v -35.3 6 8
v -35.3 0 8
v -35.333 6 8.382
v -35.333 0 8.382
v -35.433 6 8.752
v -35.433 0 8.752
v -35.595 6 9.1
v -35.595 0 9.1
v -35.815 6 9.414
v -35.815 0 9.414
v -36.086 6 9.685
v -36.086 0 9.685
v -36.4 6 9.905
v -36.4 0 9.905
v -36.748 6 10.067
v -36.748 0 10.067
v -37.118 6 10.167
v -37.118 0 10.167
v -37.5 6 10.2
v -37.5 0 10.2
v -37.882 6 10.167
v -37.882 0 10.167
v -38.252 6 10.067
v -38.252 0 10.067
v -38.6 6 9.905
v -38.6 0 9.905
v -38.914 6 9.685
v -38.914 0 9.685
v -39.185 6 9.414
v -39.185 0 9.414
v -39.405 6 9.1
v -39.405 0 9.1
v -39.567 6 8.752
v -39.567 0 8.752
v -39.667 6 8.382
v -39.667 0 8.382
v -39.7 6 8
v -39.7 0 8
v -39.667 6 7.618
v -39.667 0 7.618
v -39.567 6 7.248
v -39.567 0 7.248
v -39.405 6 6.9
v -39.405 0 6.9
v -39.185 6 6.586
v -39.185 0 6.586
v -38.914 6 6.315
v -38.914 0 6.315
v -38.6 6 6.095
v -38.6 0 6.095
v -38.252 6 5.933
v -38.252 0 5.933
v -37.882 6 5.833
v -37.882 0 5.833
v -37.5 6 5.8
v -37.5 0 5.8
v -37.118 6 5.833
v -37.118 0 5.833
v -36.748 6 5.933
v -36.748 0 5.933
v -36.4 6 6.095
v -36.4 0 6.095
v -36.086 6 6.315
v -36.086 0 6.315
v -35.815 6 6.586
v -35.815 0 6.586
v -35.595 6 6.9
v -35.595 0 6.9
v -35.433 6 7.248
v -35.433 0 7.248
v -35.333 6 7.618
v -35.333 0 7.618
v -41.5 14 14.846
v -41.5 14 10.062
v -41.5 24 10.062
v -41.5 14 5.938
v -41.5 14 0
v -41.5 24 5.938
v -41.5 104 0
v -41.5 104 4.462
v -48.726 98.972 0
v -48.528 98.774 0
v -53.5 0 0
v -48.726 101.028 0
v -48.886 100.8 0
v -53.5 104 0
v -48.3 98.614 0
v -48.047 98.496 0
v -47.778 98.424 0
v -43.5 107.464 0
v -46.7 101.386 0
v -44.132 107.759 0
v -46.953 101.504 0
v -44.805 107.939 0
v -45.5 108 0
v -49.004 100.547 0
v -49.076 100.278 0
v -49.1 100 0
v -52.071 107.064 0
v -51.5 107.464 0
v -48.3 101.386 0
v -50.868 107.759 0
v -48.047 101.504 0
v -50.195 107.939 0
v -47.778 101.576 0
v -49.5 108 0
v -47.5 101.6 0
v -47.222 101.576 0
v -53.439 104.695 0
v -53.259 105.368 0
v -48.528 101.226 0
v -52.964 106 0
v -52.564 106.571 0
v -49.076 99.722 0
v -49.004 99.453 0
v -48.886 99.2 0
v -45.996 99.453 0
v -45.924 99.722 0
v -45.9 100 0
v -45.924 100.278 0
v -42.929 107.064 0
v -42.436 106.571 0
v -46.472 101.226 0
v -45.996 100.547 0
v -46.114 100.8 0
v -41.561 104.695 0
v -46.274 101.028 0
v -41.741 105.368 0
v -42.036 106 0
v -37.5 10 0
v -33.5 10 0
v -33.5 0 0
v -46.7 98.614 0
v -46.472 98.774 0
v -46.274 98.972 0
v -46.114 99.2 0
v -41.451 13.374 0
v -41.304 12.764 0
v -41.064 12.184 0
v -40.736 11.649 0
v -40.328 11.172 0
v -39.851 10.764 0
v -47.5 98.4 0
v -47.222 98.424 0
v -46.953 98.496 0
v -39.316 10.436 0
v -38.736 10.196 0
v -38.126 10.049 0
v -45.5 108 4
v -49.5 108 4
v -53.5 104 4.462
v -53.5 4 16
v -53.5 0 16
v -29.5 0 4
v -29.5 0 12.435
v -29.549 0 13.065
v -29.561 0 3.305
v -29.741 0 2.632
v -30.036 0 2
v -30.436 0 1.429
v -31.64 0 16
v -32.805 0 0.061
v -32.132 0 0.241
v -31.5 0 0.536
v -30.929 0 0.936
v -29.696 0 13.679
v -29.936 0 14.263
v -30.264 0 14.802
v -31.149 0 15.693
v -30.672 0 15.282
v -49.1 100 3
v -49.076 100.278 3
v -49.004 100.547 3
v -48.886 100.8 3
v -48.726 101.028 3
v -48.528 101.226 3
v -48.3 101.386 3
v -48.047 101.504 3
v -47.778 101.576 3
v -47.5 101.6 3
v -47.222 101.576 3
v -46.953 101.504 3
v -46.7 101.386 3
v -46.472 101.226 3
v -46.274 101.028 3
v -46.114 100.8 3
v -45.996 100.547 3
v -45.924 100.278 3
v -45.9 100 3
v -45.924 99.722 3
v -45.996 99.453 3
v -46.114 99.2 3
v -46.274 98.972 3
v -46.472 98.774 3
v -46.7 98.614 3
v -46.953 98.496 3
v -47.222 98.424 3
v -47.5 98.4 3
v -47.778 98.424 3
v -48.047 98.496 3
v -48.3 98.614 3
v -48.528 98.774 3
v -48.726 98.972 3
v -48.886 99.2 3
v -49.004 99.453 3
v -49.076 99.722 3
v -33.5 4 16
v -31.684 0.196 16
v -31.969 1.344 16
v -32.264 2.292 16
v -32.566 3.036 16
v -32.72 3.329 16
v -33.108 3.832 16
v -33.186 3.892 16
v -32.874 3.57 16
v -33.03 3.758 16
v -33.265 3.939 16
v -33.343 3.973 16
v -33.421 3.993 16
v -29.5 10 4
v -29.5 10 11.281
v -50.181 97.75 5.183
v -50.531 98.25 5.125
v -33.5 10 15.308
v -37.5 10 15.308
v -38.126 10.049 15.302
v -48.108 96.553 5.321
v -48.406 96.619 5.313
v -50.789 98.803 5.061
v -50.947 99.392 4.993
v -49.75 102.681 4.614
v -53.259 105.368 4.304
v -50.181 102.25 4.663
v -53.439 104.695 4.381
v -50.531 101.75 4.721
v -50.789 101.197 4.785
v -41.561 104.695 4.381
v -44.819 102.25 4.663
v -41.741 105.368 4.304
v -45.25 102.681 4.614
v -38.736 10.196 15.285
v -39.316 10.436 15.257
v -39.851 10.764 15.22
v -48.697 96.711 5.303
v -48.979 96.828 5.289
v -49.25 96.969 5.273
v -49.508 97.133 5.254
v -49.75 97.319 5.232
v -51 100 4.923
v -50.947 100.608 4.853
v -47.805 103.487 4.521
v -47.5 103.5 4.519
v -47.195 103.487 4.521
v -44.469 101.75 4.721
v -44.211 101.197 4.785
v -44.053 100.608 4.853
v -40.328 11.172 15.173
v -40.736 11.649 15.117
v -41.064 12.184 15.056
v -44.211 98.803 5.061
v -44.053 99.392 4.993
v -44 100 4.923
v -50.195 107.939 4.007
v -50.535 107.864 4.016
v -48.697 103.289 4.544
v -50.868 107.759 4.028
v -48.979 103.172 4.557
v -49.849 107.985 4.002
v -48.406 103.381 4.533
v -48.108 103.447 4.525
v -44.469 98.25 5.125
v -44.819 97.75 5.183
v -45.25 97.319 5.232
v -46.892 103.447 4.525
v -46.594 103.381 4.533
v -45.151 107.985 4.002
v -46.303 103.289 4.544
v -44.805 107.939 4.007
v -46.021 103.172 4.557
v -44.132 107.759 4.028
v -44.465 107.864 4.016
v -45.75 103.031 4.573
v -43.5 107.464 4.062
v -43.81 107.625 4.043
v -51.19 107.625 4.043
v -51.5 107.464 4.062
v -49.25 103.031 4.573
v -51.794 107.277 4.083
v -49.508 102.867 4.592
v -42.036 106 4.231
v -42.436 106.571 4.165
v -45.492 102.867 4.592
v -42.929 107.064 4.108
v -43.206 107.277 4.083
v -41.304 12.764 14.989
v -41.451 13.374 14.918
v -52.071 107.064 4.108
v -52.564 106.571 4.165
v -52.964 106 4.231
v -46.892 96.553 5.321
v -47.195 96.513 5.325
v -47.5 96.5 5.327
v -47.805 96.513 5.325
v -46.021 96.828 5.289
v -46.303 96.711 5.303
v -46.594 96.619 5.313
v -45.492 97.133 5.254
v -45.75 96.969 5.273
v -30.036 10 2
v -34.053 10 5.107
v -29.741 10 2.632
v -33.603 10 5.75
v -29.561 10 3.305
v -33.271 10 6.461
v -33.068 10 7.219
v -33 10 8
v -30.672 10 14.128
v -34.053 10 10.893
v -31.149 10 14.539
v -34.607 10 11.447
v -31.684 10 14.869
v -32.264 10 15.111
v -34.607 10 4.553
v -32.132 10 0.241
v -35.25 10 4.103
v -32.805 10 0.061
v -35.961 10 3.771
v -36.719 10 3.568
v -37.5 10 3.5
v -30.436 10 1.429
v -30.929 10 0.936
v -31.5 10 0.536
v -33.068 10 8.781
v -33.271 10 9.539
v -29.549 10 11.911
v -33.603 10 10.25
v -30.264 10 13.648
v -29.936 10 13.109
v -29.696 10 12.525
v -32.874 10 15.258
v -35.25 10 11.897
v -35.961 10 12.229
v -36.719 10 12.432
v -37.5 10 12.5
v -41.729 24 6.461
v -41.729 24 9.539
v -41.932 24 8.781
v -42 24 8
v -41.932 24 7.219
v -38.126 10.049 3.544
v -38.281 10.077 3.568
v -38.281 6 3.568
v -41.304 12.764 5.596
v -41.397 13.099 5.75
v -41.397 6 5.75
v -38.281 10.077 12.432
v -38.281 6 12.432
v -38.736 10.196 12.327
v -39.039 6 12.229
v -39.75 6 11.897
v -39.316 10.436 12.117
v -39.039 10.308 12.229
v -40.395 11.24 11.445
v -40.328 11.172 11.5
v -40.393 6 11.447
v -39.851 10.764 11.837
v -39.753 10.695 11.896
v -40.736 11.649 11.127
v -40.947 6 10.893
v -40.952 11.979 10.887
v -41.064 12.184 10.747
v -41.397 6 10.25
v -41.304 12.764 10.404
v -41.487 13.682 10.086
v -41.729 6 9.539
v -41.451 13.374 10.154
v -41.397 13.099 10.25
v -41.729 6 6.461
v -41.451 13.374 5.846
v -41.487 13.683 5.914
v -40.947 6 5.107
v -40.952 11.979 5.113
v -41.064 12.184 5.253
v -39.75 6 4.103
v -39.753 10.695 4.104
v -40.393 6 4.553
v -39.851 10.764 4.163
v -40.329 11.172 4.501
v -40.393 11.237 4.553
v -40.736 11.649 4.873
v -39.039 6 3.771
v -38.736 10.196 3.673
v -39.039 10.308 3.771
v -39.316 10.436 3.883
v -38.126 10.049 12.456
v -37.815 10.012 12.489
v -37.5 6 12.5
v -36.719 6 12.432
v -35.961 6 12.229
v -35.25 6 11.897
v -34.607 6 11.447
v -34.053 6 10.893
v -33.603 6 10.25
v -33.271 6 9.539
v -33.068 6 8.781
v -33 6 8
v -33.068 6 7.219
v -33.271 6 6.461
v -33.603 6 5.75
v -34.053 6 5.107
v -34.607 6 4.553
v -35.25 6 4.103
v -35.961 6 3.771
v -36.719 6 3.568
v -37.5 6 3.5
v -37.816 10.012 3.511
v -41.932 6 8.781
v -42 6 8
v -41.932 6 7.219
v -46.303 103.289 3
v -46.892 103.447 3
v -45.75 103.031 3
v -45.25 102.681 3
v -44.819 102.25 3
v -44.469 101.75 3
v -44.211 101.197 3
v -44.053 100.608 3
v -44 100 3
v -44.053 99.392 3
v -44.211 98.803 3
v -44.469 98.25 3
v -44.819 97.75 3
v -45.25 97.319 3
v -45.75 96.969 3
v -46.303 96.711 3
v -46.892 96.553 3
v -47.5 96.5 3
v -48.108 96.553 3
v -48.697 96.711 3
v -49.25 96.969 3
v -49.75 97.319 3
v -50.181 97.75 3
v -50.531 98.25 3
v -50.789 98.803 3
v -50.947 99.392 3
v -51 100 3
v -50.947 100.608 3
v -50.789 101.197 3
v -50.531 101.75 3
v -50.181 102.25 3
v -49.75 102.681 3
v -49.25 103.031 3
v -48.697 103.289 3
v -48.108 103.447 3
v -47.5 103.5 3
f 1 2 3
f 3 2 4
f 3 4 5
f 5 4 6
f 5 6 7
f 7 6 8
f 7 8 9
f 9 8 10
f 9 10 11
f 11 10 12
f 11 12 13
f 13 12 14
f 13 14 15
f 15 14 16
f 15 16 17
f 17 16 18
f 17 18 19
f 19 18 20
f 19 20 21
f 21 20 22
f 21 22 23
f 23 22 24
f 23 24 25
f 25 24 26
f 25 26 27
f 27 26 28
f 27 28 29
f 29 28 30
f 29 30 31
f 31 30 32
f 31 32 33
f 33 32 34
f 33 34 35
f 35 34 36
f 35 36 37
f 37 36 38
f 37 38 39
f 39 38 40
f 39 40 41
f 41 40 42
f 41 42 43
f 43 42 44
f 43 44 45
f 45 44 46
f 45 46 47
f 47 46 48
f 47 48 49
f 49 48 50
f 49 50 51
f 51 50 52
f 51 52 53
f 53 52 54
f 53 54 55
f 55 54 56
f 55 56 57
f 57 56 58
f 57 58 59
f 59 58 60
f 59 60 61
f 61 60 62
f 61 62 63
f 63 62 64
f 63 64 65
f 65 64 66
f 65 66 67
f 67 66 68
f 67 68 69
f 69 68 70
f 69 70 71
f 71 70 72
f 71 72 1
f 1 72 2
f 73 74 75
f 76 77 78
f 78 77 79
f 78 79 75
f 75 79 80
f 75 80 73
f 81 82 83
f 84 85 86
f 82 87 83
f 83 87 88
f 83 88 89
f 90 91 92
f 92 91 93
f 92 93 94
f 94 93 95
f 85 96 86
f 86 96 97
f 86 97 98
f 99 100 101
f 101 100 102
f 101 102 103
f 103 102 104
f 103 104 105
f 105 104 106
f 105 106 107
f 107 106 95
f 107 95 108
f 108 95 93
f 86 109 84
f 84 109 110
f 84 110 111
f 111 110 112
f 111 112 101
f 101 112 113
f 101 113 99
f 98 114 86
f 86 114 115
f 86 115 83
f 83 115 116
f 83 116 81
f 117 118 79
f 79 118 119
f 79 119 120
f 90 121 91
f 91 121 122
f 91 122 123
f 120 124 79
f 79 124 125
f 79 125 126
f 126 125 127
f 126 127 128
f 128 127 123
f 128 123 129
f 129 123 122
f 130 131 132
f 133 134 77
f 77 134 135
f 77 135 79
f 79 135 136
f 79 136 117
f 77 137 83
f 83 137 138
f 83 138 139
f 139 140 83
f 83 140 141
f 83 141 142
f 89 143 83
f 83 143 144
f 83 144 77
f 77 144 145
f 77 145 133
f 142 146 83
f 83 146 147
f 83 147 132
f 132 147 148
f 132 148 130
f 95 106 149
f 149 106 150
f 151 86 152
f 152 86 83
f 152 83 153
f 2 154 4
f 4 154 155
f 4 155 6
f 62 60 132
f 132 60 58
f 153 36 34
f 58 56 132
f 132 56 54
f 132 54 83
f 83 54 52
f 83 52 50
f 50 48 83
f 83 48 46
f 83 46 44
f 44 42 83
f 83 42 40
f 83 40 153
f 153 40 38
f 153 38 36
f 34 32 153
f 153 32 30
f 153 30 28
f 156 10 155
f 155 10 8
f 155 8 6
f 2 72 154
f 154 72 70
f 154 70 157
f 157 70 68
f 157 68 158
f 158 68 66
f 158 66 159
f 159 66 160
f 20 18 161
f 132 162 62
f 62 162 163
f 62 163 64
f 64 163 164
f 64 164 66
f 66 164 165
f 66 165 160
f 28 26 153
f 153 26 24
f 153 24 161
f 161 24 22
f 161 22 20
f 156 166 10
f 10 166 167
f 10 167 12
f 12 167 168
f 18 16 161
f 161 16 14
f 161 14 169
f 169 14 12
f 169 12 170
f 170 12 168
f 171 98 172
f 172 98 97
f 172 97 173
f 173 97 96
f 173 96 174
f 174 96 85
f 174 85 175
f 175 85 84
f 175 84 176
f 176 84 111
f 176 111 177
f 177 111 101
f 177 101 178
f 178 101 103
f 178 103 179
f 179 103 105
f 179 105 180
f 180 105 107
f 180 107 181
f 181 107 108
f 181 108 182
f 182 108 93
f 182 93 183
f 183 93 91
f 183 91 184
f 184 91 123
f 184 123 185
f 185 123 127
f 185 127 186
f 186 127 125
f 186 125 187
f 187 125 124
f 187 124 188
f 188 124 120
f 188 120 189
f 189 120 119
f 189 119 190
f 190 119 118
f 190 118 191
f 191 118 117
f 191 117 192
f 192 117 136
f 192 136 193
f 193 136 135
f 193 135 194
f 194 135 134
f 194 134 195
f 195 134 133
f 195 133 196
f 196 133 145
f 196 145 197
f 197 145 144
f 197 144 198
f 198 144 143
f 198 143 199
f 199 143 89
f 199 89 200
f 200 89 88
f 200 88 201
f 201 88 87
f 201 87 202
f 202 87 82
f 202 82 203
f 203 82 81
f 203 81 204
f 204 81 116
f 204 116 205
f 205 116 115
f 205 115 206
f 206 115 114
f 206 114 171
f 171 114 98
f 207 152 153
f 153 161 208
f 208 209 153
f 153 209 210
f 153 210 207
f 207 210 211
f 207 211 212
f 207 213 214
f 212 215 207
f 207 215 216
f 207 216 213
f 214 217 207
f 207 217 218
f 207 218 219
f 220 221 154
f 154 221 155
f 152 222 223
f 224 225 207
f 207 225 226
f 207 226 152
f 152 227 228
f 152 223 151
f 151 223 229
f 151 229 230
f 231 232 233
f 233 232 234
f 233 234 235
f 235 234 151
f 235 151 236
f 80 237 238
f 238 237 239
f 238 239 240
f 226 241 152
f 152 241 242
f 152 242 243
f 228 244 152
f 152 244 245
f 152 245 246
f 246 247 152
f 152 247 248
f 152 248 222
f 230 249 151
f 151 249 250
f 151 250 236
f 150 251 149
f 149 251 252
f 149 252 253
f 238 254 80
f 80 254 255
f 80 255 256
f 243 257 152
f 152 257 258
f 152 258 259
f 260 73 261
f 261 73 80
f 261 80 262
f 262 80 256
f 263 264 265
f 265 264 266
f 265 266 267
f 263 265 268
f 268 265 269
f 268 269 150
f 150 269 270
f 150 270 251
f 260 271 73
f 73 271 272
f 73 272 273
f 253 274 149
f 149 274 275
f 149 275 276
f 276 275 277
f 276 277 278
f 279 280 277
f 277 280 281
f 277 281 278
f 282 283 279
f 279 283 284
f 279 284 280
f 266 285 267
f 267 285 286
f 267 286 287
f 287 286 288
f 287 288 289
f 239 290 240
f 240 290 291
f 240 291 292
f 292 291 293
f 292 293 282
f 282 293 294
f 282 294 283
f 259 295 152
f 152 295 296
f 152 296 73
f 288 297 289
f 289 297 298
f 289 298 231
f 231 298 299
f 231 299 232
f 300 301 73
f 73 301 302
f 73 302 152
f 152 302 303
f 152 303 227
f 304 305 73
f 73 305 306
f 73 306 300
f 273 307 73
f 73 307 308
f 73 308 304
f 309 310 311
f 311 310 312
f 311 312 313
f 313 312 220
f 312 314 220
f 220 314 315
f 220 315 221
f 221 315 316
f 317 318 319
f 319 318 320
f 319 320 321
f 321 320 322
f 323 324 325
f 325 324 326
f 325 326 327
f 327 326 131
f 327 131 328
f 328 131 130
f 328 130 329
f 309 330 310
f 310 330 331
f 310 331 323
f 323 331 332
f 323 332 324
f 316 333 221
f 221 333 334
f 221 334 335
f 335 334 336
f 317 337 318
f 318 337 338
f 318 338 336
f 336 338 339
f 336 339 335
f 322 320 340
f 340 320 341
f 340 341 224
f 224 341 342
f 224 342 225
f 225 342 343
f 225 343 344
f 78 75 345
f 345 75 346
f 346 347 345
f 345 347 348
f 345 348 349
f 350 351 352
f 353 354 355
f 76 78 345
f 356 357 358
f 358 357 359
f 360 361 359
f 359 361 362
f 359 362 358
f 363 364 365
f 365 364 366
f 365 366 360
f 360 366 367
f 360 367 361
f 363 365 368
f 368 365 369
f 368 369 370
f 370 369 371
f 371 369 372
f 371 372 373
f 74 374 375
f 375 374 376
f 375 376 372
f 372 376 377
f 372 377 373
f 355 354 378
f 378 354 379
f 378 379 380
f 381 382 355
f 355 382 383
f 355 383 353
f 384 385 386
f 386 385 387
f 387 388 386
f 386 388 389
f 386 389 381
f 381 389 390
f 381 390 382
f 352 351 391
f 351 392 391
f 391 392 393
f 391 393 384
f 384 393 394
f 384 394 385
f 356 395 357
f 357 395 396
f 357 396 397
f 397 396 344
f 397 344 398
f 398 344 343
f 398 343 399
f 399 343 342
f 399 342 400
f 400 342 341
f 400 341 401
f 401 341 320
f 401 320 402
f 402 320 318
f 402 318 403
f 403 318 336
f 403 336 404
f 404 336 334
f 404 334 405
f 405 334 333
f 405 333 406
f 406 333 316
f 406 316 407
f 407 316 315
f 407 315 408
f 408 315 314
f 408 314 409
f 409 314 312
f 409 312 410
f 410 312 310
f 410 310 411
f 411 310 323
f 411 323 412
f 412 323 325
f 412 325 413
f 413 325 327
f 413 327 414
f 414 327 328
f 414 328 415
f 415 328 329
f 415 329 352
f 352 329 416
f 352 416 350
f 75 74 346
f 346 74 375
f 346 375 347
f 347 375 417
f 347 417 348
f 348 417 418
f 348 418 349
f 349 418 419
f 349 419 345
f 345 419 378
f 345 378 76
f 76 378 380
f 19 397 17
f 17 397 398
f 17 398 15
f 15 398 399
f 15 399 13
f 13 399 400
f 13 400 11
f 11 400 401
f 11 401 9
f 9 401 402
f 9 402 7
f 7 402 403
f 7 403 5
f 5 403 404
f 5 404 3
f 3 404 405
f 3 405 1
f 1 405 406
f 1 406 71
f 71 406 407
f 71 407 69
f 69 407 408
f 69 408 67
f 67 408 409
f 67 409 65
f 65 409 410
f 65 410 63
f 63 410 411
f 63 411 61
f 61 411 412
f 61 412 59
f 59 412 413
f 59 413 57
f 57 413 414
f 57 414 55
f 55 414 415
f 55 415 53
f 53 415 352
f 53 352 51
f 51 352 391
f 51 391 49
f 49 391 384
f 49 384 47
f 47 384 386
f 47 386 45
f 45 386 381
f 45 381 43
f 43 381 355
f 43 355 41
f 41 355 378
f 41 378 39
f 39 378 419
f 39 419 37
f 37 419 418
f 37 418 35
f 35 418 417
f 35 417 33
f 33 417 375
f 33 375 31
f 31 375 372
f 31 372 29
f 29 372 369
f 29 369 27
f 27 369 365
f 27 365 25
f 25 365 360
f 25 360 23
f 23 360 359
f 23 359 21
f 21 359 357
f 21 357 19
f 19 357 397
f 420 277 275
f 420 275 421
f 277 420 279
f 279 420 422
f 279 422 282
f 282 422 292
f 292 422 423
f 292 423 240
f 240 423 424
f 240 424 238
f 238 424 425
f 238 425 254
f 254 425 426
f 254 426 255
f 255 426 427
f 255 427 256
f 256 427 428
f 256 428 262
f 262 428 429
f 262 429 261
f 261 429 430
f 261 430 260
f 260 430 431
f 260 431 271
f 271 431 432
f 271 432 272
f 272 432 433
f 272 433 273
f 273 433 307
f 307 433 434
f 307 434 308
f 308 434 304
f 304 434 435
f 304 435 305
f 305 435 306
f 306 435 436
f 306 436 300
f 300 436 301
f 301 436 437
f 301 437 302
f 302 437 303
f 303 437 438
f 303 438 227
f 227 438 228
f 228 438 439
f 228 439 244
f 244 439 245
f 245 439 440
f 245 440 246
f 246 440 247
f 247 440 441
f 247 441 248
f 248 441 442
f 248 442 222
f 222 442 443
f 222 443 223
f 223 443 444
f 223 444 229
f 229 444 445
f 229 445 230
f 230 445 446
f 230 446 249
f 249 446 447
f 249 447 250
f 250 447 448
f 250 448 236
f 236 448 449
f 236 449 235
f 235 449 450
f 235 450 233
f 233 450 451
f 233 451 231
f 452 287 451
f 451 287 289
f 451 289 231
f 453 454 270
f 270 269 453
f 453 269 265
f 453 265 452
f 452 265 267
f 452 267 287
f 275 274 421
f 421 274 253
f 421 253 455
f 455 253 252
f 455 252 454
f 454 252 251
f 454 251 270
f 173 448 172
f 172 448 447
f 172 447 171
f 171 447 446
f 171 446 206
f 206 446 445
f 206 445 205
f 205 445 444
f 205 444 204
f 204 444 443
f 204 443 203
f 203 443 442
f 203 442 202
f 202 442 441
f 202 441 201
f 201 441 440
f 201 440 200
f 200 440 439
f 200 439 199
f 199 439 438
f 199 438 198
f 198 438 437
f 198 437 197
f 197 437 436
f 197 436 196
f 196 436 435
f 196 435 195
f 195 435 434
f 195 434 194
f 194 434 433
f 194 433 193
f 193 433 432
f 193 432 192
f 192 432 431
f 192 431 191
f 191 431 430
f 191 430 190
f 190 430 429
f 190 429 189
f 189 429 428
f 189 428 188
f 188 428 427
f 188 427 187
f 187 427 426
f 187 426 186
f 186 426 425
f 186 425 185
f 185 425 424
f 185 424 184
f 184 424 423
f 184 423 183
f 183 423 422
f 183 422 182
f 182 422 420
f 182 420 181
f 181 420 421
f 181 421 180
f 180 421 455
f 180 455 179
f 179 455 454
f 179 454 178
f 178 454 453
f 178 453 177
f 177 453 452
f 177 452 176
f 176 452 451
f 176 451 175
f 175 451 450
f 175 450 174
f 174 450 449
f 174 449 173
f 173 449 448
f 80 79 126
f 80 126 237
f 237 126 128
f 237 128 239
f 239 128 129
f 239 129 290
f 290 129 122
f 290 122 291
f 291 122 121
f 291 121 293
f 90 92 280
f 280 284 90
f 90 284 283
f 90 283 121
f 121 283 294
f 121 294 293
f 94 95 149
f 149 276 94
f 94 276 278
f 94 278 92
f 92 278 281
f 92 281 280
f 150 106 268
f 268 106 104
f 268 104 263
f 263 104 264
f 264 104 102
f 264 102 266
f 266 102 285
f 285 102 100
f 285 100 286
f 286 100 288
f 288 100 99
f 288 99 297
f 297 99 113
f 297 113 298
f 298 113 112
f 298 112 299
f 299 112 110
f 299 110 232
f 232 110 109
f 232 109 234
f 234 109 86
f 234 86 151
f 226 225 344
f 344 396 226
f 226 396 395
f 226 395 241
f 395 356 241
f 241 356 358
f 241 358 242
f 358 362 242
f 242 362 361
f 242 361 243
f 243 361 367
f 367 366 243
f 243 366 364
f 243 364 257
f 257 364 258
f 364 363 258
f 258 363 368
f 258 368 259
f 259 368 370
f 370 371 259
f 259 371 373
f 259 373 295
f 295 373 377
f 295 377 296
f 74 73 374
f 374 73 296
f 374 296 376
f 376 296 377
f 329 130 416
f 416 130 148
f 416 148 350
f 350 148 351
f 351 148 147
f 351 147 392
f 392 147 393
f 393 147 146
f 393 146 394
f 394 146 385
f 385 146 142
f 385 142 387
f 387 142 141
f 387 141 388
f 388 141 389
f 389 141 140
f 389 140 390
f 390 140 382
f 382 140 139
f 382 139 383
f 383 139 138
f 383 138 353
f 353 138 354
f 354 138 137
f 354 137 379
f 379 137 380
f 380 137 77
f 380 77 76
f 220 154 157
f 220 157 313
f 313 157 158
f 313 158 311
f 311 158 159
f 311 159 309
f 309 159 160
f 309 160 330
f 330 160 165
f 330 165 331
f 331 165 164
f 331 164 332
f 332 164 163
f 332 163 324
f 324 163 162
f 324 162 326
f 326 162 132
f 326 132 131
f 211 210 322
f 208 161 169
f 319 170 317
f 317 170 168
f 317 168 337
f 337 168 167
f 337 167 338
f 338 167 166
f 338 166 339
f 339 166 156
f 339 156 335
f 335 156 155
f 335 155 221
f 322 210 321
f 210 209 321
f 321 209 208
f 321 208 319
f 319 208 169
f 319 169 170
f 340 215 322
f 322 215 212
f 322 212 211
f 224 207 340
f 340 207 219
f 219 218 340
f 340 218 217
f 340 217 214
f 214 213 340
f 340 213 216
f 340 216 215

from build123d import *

# Parameters (mm, degrees)
ESQUISSE1_W             = 12
ESQUISSE1_H             = 108
ESQUISSE1_R             = 1.6
BOSS_EXTRU_1_DEPTH      = 4
ESQUISSE2_R             = 2.2
BOSS_EXTRU_2_DEPTH      = 4
BOSS_EXTRU_3_DEPTH      = 12
ESQUISSE4_W             = 12
ESQUISSE4_H             = 16
ESQUISSE4_R             = 2.2
BOSS_EXTRU_4_DEPTH      = 6
ENL_V_MAT_EXTRU_1_DEPTH = 13
ESQUISSE6_R             = 4.5
ENL_V_MAT_EXTRU_2_DEPTH = 14
ESQUISSE8_R             = 4.5
ENL_V_MAT_EXTRU_3_DEPTH = 4
ESQUISSE9_R             = 1.6
ENL_V_MAT_EXTRU_4_DEPTH = 17
ESQUISSE10_R            = 3.5
ENL_V_MAT_EXTRU_5_DEPTH = 14
CONG_1_R                = 4
CONG_2_R                = 4
CONG_3_R                = 4


with BuildPart() as part:
    # Esquisse1 → Boss.-Extru.1 (new body)
    with BuildSketch(Plane.XY):
        with Locations((-47.5, 54)):
            Rectangle(ESQUISSE1_W, ESQUISSE1_H)
        with Locations((-47.5, 100)):
            Circle(ESQUISSE1_R, mode=Mode.SUBTRACT)
    extrude(amount=BOSS_EXTRU_1_DEPTH)

    # Esquisse2 → Boss.-Extru.2 (add)
    with BuildSketch(Plane.XZ):
        Polygon((-41.5, 0), (-29.5, 0), (-29.5, 16), (-53.5, 16), (-53.5, 4), (-41.5, 4), align=None)
        with Locations((-37.5, 8)):
            Circle(ESQUISSE2_R, mode=Mode.SUBTRACT)
    extrude(amount=-BOSS_EXTRU_2_DEPTH)

    # Esquisse3 → Boss.-Extru.3 (add)
    with BuildSketch(Plane.ZY.offset(53.5)):
        Polygon((4, 108), (16, 4), (4, 4), align=None)
    extrude(amount=-BOSS_EXTRU_3_DEPTH)

    # Esquisse4 → Boss.-Extru.4 (add)
    with BuildSketch(Plane(origin=(0, 4, 0), x_dir=(1, 0, 0), z_dir=(0, 1, 0))):
        with Locations((-35.5, -8)):
            Rectangle(ESQUISSE4_W, ESQUISSE4_H)
        with Locations((-37.5, -8)):
            Circle(ESQUISSE4_R, mode=Mode.SUBTRACT)
    extrude(amount=BOSS_EXTRU_4_DEPTH)

    # Esquisse5 → Enlèv. mat.-Extru.1 (cut, through all)
    with BuildSketch(Plane.ZY.offset(41.5)):
        Polygon((15.307692308, 10), (16, 4), (16, 10), align=None)
    extrude(amount=-ENL_V_MAT_EXTRU_1_DEPTH, mode=Mode.SUBTRACT)

    # Esquisse6 → Enlèv. mat.-Extru.2 (cut)
    with BuildSketch(Plane(origin=(0, 10, 0), x_dir=(1, 0, 0), z_dir=(0, 1, 0))):
        with Locations((-37.5, -8)):
            Circle(ESQUISSE6_R)
    extrude(amount=ENL_V_MAT_EXTRU_2_DEPTH, mode=Mode.SUBTRACT)

    # Esquisse8 → Enlèv. mat.-Extru.3 (cut)
    with BuildSketch(Plane(origin=(0, 10, 0), x_dir=(1, 0, 0), z_dir=(0, 1, 0))):
        with Locations((-37.5, -8)):
            Circle(ESQUISSE8_R)
    extrude(amount=-ENL_V_MAT_EXTRU_3_DEPTH, mode=Mode.SUBTRACT)

    # Esquisse9 → Enlèv. mat.-Extru.4 (cut, through all)
    with BuildSketch(Plane(origin=(0, 0, 0), x_dir=(-1, 0, 0), z_dir=(0, 0, -1))):
        with Locations((47.5, 100)):
            Circle(ESQUISSE9_R)
    extrude(amount=-ENL_V_MAT_EXTRU_4_DEPTH, mode=Mode.SUBTRACT)

    # Esquisse10 → Enlèv. mat.-Extru.5 (cut, through all)
    with BuildSketch(Plane(origin=(0, 0, 3), x_dir=(-1, 0, 0), z_dir=(0, 0, -1))):
        with Locations((47.5, 100)):
            Circle(ESQUISSE10_R)
    extrude(amount=-ENL_V_MAT_EXTRU_5_DEPTH, mode=Mode.SUBTRACT)

    # Congé1
    cong_1_edges = [part.edges().sort_by_distance(p)[0] for p in [
        (-41.5, 108, 2),
        (-53.5, 108, 2),
    ]]
    fillet(cong_1_edges, radius=CONG_1_R)

    # Congé2
    cong_2_edges = [part.edges().sort_by_distance(p)[0] for p in [
        (-41.5, 10, 2.969223594),
        (-41.5, 10, 12.68462256),
    ]]
    fillet(cong_2_edges, radius=CONG_2_R)

    # Congé3
    cong_3_edges = [part.edges().sort_by_distance(p)[0] for p in [
        (-29.5, 5, 0),
        (-29.5, 7, 15.653846154),
    ]]
    fillet(cong_3_edges, radius=CONG_3_R)


solid = part.part
